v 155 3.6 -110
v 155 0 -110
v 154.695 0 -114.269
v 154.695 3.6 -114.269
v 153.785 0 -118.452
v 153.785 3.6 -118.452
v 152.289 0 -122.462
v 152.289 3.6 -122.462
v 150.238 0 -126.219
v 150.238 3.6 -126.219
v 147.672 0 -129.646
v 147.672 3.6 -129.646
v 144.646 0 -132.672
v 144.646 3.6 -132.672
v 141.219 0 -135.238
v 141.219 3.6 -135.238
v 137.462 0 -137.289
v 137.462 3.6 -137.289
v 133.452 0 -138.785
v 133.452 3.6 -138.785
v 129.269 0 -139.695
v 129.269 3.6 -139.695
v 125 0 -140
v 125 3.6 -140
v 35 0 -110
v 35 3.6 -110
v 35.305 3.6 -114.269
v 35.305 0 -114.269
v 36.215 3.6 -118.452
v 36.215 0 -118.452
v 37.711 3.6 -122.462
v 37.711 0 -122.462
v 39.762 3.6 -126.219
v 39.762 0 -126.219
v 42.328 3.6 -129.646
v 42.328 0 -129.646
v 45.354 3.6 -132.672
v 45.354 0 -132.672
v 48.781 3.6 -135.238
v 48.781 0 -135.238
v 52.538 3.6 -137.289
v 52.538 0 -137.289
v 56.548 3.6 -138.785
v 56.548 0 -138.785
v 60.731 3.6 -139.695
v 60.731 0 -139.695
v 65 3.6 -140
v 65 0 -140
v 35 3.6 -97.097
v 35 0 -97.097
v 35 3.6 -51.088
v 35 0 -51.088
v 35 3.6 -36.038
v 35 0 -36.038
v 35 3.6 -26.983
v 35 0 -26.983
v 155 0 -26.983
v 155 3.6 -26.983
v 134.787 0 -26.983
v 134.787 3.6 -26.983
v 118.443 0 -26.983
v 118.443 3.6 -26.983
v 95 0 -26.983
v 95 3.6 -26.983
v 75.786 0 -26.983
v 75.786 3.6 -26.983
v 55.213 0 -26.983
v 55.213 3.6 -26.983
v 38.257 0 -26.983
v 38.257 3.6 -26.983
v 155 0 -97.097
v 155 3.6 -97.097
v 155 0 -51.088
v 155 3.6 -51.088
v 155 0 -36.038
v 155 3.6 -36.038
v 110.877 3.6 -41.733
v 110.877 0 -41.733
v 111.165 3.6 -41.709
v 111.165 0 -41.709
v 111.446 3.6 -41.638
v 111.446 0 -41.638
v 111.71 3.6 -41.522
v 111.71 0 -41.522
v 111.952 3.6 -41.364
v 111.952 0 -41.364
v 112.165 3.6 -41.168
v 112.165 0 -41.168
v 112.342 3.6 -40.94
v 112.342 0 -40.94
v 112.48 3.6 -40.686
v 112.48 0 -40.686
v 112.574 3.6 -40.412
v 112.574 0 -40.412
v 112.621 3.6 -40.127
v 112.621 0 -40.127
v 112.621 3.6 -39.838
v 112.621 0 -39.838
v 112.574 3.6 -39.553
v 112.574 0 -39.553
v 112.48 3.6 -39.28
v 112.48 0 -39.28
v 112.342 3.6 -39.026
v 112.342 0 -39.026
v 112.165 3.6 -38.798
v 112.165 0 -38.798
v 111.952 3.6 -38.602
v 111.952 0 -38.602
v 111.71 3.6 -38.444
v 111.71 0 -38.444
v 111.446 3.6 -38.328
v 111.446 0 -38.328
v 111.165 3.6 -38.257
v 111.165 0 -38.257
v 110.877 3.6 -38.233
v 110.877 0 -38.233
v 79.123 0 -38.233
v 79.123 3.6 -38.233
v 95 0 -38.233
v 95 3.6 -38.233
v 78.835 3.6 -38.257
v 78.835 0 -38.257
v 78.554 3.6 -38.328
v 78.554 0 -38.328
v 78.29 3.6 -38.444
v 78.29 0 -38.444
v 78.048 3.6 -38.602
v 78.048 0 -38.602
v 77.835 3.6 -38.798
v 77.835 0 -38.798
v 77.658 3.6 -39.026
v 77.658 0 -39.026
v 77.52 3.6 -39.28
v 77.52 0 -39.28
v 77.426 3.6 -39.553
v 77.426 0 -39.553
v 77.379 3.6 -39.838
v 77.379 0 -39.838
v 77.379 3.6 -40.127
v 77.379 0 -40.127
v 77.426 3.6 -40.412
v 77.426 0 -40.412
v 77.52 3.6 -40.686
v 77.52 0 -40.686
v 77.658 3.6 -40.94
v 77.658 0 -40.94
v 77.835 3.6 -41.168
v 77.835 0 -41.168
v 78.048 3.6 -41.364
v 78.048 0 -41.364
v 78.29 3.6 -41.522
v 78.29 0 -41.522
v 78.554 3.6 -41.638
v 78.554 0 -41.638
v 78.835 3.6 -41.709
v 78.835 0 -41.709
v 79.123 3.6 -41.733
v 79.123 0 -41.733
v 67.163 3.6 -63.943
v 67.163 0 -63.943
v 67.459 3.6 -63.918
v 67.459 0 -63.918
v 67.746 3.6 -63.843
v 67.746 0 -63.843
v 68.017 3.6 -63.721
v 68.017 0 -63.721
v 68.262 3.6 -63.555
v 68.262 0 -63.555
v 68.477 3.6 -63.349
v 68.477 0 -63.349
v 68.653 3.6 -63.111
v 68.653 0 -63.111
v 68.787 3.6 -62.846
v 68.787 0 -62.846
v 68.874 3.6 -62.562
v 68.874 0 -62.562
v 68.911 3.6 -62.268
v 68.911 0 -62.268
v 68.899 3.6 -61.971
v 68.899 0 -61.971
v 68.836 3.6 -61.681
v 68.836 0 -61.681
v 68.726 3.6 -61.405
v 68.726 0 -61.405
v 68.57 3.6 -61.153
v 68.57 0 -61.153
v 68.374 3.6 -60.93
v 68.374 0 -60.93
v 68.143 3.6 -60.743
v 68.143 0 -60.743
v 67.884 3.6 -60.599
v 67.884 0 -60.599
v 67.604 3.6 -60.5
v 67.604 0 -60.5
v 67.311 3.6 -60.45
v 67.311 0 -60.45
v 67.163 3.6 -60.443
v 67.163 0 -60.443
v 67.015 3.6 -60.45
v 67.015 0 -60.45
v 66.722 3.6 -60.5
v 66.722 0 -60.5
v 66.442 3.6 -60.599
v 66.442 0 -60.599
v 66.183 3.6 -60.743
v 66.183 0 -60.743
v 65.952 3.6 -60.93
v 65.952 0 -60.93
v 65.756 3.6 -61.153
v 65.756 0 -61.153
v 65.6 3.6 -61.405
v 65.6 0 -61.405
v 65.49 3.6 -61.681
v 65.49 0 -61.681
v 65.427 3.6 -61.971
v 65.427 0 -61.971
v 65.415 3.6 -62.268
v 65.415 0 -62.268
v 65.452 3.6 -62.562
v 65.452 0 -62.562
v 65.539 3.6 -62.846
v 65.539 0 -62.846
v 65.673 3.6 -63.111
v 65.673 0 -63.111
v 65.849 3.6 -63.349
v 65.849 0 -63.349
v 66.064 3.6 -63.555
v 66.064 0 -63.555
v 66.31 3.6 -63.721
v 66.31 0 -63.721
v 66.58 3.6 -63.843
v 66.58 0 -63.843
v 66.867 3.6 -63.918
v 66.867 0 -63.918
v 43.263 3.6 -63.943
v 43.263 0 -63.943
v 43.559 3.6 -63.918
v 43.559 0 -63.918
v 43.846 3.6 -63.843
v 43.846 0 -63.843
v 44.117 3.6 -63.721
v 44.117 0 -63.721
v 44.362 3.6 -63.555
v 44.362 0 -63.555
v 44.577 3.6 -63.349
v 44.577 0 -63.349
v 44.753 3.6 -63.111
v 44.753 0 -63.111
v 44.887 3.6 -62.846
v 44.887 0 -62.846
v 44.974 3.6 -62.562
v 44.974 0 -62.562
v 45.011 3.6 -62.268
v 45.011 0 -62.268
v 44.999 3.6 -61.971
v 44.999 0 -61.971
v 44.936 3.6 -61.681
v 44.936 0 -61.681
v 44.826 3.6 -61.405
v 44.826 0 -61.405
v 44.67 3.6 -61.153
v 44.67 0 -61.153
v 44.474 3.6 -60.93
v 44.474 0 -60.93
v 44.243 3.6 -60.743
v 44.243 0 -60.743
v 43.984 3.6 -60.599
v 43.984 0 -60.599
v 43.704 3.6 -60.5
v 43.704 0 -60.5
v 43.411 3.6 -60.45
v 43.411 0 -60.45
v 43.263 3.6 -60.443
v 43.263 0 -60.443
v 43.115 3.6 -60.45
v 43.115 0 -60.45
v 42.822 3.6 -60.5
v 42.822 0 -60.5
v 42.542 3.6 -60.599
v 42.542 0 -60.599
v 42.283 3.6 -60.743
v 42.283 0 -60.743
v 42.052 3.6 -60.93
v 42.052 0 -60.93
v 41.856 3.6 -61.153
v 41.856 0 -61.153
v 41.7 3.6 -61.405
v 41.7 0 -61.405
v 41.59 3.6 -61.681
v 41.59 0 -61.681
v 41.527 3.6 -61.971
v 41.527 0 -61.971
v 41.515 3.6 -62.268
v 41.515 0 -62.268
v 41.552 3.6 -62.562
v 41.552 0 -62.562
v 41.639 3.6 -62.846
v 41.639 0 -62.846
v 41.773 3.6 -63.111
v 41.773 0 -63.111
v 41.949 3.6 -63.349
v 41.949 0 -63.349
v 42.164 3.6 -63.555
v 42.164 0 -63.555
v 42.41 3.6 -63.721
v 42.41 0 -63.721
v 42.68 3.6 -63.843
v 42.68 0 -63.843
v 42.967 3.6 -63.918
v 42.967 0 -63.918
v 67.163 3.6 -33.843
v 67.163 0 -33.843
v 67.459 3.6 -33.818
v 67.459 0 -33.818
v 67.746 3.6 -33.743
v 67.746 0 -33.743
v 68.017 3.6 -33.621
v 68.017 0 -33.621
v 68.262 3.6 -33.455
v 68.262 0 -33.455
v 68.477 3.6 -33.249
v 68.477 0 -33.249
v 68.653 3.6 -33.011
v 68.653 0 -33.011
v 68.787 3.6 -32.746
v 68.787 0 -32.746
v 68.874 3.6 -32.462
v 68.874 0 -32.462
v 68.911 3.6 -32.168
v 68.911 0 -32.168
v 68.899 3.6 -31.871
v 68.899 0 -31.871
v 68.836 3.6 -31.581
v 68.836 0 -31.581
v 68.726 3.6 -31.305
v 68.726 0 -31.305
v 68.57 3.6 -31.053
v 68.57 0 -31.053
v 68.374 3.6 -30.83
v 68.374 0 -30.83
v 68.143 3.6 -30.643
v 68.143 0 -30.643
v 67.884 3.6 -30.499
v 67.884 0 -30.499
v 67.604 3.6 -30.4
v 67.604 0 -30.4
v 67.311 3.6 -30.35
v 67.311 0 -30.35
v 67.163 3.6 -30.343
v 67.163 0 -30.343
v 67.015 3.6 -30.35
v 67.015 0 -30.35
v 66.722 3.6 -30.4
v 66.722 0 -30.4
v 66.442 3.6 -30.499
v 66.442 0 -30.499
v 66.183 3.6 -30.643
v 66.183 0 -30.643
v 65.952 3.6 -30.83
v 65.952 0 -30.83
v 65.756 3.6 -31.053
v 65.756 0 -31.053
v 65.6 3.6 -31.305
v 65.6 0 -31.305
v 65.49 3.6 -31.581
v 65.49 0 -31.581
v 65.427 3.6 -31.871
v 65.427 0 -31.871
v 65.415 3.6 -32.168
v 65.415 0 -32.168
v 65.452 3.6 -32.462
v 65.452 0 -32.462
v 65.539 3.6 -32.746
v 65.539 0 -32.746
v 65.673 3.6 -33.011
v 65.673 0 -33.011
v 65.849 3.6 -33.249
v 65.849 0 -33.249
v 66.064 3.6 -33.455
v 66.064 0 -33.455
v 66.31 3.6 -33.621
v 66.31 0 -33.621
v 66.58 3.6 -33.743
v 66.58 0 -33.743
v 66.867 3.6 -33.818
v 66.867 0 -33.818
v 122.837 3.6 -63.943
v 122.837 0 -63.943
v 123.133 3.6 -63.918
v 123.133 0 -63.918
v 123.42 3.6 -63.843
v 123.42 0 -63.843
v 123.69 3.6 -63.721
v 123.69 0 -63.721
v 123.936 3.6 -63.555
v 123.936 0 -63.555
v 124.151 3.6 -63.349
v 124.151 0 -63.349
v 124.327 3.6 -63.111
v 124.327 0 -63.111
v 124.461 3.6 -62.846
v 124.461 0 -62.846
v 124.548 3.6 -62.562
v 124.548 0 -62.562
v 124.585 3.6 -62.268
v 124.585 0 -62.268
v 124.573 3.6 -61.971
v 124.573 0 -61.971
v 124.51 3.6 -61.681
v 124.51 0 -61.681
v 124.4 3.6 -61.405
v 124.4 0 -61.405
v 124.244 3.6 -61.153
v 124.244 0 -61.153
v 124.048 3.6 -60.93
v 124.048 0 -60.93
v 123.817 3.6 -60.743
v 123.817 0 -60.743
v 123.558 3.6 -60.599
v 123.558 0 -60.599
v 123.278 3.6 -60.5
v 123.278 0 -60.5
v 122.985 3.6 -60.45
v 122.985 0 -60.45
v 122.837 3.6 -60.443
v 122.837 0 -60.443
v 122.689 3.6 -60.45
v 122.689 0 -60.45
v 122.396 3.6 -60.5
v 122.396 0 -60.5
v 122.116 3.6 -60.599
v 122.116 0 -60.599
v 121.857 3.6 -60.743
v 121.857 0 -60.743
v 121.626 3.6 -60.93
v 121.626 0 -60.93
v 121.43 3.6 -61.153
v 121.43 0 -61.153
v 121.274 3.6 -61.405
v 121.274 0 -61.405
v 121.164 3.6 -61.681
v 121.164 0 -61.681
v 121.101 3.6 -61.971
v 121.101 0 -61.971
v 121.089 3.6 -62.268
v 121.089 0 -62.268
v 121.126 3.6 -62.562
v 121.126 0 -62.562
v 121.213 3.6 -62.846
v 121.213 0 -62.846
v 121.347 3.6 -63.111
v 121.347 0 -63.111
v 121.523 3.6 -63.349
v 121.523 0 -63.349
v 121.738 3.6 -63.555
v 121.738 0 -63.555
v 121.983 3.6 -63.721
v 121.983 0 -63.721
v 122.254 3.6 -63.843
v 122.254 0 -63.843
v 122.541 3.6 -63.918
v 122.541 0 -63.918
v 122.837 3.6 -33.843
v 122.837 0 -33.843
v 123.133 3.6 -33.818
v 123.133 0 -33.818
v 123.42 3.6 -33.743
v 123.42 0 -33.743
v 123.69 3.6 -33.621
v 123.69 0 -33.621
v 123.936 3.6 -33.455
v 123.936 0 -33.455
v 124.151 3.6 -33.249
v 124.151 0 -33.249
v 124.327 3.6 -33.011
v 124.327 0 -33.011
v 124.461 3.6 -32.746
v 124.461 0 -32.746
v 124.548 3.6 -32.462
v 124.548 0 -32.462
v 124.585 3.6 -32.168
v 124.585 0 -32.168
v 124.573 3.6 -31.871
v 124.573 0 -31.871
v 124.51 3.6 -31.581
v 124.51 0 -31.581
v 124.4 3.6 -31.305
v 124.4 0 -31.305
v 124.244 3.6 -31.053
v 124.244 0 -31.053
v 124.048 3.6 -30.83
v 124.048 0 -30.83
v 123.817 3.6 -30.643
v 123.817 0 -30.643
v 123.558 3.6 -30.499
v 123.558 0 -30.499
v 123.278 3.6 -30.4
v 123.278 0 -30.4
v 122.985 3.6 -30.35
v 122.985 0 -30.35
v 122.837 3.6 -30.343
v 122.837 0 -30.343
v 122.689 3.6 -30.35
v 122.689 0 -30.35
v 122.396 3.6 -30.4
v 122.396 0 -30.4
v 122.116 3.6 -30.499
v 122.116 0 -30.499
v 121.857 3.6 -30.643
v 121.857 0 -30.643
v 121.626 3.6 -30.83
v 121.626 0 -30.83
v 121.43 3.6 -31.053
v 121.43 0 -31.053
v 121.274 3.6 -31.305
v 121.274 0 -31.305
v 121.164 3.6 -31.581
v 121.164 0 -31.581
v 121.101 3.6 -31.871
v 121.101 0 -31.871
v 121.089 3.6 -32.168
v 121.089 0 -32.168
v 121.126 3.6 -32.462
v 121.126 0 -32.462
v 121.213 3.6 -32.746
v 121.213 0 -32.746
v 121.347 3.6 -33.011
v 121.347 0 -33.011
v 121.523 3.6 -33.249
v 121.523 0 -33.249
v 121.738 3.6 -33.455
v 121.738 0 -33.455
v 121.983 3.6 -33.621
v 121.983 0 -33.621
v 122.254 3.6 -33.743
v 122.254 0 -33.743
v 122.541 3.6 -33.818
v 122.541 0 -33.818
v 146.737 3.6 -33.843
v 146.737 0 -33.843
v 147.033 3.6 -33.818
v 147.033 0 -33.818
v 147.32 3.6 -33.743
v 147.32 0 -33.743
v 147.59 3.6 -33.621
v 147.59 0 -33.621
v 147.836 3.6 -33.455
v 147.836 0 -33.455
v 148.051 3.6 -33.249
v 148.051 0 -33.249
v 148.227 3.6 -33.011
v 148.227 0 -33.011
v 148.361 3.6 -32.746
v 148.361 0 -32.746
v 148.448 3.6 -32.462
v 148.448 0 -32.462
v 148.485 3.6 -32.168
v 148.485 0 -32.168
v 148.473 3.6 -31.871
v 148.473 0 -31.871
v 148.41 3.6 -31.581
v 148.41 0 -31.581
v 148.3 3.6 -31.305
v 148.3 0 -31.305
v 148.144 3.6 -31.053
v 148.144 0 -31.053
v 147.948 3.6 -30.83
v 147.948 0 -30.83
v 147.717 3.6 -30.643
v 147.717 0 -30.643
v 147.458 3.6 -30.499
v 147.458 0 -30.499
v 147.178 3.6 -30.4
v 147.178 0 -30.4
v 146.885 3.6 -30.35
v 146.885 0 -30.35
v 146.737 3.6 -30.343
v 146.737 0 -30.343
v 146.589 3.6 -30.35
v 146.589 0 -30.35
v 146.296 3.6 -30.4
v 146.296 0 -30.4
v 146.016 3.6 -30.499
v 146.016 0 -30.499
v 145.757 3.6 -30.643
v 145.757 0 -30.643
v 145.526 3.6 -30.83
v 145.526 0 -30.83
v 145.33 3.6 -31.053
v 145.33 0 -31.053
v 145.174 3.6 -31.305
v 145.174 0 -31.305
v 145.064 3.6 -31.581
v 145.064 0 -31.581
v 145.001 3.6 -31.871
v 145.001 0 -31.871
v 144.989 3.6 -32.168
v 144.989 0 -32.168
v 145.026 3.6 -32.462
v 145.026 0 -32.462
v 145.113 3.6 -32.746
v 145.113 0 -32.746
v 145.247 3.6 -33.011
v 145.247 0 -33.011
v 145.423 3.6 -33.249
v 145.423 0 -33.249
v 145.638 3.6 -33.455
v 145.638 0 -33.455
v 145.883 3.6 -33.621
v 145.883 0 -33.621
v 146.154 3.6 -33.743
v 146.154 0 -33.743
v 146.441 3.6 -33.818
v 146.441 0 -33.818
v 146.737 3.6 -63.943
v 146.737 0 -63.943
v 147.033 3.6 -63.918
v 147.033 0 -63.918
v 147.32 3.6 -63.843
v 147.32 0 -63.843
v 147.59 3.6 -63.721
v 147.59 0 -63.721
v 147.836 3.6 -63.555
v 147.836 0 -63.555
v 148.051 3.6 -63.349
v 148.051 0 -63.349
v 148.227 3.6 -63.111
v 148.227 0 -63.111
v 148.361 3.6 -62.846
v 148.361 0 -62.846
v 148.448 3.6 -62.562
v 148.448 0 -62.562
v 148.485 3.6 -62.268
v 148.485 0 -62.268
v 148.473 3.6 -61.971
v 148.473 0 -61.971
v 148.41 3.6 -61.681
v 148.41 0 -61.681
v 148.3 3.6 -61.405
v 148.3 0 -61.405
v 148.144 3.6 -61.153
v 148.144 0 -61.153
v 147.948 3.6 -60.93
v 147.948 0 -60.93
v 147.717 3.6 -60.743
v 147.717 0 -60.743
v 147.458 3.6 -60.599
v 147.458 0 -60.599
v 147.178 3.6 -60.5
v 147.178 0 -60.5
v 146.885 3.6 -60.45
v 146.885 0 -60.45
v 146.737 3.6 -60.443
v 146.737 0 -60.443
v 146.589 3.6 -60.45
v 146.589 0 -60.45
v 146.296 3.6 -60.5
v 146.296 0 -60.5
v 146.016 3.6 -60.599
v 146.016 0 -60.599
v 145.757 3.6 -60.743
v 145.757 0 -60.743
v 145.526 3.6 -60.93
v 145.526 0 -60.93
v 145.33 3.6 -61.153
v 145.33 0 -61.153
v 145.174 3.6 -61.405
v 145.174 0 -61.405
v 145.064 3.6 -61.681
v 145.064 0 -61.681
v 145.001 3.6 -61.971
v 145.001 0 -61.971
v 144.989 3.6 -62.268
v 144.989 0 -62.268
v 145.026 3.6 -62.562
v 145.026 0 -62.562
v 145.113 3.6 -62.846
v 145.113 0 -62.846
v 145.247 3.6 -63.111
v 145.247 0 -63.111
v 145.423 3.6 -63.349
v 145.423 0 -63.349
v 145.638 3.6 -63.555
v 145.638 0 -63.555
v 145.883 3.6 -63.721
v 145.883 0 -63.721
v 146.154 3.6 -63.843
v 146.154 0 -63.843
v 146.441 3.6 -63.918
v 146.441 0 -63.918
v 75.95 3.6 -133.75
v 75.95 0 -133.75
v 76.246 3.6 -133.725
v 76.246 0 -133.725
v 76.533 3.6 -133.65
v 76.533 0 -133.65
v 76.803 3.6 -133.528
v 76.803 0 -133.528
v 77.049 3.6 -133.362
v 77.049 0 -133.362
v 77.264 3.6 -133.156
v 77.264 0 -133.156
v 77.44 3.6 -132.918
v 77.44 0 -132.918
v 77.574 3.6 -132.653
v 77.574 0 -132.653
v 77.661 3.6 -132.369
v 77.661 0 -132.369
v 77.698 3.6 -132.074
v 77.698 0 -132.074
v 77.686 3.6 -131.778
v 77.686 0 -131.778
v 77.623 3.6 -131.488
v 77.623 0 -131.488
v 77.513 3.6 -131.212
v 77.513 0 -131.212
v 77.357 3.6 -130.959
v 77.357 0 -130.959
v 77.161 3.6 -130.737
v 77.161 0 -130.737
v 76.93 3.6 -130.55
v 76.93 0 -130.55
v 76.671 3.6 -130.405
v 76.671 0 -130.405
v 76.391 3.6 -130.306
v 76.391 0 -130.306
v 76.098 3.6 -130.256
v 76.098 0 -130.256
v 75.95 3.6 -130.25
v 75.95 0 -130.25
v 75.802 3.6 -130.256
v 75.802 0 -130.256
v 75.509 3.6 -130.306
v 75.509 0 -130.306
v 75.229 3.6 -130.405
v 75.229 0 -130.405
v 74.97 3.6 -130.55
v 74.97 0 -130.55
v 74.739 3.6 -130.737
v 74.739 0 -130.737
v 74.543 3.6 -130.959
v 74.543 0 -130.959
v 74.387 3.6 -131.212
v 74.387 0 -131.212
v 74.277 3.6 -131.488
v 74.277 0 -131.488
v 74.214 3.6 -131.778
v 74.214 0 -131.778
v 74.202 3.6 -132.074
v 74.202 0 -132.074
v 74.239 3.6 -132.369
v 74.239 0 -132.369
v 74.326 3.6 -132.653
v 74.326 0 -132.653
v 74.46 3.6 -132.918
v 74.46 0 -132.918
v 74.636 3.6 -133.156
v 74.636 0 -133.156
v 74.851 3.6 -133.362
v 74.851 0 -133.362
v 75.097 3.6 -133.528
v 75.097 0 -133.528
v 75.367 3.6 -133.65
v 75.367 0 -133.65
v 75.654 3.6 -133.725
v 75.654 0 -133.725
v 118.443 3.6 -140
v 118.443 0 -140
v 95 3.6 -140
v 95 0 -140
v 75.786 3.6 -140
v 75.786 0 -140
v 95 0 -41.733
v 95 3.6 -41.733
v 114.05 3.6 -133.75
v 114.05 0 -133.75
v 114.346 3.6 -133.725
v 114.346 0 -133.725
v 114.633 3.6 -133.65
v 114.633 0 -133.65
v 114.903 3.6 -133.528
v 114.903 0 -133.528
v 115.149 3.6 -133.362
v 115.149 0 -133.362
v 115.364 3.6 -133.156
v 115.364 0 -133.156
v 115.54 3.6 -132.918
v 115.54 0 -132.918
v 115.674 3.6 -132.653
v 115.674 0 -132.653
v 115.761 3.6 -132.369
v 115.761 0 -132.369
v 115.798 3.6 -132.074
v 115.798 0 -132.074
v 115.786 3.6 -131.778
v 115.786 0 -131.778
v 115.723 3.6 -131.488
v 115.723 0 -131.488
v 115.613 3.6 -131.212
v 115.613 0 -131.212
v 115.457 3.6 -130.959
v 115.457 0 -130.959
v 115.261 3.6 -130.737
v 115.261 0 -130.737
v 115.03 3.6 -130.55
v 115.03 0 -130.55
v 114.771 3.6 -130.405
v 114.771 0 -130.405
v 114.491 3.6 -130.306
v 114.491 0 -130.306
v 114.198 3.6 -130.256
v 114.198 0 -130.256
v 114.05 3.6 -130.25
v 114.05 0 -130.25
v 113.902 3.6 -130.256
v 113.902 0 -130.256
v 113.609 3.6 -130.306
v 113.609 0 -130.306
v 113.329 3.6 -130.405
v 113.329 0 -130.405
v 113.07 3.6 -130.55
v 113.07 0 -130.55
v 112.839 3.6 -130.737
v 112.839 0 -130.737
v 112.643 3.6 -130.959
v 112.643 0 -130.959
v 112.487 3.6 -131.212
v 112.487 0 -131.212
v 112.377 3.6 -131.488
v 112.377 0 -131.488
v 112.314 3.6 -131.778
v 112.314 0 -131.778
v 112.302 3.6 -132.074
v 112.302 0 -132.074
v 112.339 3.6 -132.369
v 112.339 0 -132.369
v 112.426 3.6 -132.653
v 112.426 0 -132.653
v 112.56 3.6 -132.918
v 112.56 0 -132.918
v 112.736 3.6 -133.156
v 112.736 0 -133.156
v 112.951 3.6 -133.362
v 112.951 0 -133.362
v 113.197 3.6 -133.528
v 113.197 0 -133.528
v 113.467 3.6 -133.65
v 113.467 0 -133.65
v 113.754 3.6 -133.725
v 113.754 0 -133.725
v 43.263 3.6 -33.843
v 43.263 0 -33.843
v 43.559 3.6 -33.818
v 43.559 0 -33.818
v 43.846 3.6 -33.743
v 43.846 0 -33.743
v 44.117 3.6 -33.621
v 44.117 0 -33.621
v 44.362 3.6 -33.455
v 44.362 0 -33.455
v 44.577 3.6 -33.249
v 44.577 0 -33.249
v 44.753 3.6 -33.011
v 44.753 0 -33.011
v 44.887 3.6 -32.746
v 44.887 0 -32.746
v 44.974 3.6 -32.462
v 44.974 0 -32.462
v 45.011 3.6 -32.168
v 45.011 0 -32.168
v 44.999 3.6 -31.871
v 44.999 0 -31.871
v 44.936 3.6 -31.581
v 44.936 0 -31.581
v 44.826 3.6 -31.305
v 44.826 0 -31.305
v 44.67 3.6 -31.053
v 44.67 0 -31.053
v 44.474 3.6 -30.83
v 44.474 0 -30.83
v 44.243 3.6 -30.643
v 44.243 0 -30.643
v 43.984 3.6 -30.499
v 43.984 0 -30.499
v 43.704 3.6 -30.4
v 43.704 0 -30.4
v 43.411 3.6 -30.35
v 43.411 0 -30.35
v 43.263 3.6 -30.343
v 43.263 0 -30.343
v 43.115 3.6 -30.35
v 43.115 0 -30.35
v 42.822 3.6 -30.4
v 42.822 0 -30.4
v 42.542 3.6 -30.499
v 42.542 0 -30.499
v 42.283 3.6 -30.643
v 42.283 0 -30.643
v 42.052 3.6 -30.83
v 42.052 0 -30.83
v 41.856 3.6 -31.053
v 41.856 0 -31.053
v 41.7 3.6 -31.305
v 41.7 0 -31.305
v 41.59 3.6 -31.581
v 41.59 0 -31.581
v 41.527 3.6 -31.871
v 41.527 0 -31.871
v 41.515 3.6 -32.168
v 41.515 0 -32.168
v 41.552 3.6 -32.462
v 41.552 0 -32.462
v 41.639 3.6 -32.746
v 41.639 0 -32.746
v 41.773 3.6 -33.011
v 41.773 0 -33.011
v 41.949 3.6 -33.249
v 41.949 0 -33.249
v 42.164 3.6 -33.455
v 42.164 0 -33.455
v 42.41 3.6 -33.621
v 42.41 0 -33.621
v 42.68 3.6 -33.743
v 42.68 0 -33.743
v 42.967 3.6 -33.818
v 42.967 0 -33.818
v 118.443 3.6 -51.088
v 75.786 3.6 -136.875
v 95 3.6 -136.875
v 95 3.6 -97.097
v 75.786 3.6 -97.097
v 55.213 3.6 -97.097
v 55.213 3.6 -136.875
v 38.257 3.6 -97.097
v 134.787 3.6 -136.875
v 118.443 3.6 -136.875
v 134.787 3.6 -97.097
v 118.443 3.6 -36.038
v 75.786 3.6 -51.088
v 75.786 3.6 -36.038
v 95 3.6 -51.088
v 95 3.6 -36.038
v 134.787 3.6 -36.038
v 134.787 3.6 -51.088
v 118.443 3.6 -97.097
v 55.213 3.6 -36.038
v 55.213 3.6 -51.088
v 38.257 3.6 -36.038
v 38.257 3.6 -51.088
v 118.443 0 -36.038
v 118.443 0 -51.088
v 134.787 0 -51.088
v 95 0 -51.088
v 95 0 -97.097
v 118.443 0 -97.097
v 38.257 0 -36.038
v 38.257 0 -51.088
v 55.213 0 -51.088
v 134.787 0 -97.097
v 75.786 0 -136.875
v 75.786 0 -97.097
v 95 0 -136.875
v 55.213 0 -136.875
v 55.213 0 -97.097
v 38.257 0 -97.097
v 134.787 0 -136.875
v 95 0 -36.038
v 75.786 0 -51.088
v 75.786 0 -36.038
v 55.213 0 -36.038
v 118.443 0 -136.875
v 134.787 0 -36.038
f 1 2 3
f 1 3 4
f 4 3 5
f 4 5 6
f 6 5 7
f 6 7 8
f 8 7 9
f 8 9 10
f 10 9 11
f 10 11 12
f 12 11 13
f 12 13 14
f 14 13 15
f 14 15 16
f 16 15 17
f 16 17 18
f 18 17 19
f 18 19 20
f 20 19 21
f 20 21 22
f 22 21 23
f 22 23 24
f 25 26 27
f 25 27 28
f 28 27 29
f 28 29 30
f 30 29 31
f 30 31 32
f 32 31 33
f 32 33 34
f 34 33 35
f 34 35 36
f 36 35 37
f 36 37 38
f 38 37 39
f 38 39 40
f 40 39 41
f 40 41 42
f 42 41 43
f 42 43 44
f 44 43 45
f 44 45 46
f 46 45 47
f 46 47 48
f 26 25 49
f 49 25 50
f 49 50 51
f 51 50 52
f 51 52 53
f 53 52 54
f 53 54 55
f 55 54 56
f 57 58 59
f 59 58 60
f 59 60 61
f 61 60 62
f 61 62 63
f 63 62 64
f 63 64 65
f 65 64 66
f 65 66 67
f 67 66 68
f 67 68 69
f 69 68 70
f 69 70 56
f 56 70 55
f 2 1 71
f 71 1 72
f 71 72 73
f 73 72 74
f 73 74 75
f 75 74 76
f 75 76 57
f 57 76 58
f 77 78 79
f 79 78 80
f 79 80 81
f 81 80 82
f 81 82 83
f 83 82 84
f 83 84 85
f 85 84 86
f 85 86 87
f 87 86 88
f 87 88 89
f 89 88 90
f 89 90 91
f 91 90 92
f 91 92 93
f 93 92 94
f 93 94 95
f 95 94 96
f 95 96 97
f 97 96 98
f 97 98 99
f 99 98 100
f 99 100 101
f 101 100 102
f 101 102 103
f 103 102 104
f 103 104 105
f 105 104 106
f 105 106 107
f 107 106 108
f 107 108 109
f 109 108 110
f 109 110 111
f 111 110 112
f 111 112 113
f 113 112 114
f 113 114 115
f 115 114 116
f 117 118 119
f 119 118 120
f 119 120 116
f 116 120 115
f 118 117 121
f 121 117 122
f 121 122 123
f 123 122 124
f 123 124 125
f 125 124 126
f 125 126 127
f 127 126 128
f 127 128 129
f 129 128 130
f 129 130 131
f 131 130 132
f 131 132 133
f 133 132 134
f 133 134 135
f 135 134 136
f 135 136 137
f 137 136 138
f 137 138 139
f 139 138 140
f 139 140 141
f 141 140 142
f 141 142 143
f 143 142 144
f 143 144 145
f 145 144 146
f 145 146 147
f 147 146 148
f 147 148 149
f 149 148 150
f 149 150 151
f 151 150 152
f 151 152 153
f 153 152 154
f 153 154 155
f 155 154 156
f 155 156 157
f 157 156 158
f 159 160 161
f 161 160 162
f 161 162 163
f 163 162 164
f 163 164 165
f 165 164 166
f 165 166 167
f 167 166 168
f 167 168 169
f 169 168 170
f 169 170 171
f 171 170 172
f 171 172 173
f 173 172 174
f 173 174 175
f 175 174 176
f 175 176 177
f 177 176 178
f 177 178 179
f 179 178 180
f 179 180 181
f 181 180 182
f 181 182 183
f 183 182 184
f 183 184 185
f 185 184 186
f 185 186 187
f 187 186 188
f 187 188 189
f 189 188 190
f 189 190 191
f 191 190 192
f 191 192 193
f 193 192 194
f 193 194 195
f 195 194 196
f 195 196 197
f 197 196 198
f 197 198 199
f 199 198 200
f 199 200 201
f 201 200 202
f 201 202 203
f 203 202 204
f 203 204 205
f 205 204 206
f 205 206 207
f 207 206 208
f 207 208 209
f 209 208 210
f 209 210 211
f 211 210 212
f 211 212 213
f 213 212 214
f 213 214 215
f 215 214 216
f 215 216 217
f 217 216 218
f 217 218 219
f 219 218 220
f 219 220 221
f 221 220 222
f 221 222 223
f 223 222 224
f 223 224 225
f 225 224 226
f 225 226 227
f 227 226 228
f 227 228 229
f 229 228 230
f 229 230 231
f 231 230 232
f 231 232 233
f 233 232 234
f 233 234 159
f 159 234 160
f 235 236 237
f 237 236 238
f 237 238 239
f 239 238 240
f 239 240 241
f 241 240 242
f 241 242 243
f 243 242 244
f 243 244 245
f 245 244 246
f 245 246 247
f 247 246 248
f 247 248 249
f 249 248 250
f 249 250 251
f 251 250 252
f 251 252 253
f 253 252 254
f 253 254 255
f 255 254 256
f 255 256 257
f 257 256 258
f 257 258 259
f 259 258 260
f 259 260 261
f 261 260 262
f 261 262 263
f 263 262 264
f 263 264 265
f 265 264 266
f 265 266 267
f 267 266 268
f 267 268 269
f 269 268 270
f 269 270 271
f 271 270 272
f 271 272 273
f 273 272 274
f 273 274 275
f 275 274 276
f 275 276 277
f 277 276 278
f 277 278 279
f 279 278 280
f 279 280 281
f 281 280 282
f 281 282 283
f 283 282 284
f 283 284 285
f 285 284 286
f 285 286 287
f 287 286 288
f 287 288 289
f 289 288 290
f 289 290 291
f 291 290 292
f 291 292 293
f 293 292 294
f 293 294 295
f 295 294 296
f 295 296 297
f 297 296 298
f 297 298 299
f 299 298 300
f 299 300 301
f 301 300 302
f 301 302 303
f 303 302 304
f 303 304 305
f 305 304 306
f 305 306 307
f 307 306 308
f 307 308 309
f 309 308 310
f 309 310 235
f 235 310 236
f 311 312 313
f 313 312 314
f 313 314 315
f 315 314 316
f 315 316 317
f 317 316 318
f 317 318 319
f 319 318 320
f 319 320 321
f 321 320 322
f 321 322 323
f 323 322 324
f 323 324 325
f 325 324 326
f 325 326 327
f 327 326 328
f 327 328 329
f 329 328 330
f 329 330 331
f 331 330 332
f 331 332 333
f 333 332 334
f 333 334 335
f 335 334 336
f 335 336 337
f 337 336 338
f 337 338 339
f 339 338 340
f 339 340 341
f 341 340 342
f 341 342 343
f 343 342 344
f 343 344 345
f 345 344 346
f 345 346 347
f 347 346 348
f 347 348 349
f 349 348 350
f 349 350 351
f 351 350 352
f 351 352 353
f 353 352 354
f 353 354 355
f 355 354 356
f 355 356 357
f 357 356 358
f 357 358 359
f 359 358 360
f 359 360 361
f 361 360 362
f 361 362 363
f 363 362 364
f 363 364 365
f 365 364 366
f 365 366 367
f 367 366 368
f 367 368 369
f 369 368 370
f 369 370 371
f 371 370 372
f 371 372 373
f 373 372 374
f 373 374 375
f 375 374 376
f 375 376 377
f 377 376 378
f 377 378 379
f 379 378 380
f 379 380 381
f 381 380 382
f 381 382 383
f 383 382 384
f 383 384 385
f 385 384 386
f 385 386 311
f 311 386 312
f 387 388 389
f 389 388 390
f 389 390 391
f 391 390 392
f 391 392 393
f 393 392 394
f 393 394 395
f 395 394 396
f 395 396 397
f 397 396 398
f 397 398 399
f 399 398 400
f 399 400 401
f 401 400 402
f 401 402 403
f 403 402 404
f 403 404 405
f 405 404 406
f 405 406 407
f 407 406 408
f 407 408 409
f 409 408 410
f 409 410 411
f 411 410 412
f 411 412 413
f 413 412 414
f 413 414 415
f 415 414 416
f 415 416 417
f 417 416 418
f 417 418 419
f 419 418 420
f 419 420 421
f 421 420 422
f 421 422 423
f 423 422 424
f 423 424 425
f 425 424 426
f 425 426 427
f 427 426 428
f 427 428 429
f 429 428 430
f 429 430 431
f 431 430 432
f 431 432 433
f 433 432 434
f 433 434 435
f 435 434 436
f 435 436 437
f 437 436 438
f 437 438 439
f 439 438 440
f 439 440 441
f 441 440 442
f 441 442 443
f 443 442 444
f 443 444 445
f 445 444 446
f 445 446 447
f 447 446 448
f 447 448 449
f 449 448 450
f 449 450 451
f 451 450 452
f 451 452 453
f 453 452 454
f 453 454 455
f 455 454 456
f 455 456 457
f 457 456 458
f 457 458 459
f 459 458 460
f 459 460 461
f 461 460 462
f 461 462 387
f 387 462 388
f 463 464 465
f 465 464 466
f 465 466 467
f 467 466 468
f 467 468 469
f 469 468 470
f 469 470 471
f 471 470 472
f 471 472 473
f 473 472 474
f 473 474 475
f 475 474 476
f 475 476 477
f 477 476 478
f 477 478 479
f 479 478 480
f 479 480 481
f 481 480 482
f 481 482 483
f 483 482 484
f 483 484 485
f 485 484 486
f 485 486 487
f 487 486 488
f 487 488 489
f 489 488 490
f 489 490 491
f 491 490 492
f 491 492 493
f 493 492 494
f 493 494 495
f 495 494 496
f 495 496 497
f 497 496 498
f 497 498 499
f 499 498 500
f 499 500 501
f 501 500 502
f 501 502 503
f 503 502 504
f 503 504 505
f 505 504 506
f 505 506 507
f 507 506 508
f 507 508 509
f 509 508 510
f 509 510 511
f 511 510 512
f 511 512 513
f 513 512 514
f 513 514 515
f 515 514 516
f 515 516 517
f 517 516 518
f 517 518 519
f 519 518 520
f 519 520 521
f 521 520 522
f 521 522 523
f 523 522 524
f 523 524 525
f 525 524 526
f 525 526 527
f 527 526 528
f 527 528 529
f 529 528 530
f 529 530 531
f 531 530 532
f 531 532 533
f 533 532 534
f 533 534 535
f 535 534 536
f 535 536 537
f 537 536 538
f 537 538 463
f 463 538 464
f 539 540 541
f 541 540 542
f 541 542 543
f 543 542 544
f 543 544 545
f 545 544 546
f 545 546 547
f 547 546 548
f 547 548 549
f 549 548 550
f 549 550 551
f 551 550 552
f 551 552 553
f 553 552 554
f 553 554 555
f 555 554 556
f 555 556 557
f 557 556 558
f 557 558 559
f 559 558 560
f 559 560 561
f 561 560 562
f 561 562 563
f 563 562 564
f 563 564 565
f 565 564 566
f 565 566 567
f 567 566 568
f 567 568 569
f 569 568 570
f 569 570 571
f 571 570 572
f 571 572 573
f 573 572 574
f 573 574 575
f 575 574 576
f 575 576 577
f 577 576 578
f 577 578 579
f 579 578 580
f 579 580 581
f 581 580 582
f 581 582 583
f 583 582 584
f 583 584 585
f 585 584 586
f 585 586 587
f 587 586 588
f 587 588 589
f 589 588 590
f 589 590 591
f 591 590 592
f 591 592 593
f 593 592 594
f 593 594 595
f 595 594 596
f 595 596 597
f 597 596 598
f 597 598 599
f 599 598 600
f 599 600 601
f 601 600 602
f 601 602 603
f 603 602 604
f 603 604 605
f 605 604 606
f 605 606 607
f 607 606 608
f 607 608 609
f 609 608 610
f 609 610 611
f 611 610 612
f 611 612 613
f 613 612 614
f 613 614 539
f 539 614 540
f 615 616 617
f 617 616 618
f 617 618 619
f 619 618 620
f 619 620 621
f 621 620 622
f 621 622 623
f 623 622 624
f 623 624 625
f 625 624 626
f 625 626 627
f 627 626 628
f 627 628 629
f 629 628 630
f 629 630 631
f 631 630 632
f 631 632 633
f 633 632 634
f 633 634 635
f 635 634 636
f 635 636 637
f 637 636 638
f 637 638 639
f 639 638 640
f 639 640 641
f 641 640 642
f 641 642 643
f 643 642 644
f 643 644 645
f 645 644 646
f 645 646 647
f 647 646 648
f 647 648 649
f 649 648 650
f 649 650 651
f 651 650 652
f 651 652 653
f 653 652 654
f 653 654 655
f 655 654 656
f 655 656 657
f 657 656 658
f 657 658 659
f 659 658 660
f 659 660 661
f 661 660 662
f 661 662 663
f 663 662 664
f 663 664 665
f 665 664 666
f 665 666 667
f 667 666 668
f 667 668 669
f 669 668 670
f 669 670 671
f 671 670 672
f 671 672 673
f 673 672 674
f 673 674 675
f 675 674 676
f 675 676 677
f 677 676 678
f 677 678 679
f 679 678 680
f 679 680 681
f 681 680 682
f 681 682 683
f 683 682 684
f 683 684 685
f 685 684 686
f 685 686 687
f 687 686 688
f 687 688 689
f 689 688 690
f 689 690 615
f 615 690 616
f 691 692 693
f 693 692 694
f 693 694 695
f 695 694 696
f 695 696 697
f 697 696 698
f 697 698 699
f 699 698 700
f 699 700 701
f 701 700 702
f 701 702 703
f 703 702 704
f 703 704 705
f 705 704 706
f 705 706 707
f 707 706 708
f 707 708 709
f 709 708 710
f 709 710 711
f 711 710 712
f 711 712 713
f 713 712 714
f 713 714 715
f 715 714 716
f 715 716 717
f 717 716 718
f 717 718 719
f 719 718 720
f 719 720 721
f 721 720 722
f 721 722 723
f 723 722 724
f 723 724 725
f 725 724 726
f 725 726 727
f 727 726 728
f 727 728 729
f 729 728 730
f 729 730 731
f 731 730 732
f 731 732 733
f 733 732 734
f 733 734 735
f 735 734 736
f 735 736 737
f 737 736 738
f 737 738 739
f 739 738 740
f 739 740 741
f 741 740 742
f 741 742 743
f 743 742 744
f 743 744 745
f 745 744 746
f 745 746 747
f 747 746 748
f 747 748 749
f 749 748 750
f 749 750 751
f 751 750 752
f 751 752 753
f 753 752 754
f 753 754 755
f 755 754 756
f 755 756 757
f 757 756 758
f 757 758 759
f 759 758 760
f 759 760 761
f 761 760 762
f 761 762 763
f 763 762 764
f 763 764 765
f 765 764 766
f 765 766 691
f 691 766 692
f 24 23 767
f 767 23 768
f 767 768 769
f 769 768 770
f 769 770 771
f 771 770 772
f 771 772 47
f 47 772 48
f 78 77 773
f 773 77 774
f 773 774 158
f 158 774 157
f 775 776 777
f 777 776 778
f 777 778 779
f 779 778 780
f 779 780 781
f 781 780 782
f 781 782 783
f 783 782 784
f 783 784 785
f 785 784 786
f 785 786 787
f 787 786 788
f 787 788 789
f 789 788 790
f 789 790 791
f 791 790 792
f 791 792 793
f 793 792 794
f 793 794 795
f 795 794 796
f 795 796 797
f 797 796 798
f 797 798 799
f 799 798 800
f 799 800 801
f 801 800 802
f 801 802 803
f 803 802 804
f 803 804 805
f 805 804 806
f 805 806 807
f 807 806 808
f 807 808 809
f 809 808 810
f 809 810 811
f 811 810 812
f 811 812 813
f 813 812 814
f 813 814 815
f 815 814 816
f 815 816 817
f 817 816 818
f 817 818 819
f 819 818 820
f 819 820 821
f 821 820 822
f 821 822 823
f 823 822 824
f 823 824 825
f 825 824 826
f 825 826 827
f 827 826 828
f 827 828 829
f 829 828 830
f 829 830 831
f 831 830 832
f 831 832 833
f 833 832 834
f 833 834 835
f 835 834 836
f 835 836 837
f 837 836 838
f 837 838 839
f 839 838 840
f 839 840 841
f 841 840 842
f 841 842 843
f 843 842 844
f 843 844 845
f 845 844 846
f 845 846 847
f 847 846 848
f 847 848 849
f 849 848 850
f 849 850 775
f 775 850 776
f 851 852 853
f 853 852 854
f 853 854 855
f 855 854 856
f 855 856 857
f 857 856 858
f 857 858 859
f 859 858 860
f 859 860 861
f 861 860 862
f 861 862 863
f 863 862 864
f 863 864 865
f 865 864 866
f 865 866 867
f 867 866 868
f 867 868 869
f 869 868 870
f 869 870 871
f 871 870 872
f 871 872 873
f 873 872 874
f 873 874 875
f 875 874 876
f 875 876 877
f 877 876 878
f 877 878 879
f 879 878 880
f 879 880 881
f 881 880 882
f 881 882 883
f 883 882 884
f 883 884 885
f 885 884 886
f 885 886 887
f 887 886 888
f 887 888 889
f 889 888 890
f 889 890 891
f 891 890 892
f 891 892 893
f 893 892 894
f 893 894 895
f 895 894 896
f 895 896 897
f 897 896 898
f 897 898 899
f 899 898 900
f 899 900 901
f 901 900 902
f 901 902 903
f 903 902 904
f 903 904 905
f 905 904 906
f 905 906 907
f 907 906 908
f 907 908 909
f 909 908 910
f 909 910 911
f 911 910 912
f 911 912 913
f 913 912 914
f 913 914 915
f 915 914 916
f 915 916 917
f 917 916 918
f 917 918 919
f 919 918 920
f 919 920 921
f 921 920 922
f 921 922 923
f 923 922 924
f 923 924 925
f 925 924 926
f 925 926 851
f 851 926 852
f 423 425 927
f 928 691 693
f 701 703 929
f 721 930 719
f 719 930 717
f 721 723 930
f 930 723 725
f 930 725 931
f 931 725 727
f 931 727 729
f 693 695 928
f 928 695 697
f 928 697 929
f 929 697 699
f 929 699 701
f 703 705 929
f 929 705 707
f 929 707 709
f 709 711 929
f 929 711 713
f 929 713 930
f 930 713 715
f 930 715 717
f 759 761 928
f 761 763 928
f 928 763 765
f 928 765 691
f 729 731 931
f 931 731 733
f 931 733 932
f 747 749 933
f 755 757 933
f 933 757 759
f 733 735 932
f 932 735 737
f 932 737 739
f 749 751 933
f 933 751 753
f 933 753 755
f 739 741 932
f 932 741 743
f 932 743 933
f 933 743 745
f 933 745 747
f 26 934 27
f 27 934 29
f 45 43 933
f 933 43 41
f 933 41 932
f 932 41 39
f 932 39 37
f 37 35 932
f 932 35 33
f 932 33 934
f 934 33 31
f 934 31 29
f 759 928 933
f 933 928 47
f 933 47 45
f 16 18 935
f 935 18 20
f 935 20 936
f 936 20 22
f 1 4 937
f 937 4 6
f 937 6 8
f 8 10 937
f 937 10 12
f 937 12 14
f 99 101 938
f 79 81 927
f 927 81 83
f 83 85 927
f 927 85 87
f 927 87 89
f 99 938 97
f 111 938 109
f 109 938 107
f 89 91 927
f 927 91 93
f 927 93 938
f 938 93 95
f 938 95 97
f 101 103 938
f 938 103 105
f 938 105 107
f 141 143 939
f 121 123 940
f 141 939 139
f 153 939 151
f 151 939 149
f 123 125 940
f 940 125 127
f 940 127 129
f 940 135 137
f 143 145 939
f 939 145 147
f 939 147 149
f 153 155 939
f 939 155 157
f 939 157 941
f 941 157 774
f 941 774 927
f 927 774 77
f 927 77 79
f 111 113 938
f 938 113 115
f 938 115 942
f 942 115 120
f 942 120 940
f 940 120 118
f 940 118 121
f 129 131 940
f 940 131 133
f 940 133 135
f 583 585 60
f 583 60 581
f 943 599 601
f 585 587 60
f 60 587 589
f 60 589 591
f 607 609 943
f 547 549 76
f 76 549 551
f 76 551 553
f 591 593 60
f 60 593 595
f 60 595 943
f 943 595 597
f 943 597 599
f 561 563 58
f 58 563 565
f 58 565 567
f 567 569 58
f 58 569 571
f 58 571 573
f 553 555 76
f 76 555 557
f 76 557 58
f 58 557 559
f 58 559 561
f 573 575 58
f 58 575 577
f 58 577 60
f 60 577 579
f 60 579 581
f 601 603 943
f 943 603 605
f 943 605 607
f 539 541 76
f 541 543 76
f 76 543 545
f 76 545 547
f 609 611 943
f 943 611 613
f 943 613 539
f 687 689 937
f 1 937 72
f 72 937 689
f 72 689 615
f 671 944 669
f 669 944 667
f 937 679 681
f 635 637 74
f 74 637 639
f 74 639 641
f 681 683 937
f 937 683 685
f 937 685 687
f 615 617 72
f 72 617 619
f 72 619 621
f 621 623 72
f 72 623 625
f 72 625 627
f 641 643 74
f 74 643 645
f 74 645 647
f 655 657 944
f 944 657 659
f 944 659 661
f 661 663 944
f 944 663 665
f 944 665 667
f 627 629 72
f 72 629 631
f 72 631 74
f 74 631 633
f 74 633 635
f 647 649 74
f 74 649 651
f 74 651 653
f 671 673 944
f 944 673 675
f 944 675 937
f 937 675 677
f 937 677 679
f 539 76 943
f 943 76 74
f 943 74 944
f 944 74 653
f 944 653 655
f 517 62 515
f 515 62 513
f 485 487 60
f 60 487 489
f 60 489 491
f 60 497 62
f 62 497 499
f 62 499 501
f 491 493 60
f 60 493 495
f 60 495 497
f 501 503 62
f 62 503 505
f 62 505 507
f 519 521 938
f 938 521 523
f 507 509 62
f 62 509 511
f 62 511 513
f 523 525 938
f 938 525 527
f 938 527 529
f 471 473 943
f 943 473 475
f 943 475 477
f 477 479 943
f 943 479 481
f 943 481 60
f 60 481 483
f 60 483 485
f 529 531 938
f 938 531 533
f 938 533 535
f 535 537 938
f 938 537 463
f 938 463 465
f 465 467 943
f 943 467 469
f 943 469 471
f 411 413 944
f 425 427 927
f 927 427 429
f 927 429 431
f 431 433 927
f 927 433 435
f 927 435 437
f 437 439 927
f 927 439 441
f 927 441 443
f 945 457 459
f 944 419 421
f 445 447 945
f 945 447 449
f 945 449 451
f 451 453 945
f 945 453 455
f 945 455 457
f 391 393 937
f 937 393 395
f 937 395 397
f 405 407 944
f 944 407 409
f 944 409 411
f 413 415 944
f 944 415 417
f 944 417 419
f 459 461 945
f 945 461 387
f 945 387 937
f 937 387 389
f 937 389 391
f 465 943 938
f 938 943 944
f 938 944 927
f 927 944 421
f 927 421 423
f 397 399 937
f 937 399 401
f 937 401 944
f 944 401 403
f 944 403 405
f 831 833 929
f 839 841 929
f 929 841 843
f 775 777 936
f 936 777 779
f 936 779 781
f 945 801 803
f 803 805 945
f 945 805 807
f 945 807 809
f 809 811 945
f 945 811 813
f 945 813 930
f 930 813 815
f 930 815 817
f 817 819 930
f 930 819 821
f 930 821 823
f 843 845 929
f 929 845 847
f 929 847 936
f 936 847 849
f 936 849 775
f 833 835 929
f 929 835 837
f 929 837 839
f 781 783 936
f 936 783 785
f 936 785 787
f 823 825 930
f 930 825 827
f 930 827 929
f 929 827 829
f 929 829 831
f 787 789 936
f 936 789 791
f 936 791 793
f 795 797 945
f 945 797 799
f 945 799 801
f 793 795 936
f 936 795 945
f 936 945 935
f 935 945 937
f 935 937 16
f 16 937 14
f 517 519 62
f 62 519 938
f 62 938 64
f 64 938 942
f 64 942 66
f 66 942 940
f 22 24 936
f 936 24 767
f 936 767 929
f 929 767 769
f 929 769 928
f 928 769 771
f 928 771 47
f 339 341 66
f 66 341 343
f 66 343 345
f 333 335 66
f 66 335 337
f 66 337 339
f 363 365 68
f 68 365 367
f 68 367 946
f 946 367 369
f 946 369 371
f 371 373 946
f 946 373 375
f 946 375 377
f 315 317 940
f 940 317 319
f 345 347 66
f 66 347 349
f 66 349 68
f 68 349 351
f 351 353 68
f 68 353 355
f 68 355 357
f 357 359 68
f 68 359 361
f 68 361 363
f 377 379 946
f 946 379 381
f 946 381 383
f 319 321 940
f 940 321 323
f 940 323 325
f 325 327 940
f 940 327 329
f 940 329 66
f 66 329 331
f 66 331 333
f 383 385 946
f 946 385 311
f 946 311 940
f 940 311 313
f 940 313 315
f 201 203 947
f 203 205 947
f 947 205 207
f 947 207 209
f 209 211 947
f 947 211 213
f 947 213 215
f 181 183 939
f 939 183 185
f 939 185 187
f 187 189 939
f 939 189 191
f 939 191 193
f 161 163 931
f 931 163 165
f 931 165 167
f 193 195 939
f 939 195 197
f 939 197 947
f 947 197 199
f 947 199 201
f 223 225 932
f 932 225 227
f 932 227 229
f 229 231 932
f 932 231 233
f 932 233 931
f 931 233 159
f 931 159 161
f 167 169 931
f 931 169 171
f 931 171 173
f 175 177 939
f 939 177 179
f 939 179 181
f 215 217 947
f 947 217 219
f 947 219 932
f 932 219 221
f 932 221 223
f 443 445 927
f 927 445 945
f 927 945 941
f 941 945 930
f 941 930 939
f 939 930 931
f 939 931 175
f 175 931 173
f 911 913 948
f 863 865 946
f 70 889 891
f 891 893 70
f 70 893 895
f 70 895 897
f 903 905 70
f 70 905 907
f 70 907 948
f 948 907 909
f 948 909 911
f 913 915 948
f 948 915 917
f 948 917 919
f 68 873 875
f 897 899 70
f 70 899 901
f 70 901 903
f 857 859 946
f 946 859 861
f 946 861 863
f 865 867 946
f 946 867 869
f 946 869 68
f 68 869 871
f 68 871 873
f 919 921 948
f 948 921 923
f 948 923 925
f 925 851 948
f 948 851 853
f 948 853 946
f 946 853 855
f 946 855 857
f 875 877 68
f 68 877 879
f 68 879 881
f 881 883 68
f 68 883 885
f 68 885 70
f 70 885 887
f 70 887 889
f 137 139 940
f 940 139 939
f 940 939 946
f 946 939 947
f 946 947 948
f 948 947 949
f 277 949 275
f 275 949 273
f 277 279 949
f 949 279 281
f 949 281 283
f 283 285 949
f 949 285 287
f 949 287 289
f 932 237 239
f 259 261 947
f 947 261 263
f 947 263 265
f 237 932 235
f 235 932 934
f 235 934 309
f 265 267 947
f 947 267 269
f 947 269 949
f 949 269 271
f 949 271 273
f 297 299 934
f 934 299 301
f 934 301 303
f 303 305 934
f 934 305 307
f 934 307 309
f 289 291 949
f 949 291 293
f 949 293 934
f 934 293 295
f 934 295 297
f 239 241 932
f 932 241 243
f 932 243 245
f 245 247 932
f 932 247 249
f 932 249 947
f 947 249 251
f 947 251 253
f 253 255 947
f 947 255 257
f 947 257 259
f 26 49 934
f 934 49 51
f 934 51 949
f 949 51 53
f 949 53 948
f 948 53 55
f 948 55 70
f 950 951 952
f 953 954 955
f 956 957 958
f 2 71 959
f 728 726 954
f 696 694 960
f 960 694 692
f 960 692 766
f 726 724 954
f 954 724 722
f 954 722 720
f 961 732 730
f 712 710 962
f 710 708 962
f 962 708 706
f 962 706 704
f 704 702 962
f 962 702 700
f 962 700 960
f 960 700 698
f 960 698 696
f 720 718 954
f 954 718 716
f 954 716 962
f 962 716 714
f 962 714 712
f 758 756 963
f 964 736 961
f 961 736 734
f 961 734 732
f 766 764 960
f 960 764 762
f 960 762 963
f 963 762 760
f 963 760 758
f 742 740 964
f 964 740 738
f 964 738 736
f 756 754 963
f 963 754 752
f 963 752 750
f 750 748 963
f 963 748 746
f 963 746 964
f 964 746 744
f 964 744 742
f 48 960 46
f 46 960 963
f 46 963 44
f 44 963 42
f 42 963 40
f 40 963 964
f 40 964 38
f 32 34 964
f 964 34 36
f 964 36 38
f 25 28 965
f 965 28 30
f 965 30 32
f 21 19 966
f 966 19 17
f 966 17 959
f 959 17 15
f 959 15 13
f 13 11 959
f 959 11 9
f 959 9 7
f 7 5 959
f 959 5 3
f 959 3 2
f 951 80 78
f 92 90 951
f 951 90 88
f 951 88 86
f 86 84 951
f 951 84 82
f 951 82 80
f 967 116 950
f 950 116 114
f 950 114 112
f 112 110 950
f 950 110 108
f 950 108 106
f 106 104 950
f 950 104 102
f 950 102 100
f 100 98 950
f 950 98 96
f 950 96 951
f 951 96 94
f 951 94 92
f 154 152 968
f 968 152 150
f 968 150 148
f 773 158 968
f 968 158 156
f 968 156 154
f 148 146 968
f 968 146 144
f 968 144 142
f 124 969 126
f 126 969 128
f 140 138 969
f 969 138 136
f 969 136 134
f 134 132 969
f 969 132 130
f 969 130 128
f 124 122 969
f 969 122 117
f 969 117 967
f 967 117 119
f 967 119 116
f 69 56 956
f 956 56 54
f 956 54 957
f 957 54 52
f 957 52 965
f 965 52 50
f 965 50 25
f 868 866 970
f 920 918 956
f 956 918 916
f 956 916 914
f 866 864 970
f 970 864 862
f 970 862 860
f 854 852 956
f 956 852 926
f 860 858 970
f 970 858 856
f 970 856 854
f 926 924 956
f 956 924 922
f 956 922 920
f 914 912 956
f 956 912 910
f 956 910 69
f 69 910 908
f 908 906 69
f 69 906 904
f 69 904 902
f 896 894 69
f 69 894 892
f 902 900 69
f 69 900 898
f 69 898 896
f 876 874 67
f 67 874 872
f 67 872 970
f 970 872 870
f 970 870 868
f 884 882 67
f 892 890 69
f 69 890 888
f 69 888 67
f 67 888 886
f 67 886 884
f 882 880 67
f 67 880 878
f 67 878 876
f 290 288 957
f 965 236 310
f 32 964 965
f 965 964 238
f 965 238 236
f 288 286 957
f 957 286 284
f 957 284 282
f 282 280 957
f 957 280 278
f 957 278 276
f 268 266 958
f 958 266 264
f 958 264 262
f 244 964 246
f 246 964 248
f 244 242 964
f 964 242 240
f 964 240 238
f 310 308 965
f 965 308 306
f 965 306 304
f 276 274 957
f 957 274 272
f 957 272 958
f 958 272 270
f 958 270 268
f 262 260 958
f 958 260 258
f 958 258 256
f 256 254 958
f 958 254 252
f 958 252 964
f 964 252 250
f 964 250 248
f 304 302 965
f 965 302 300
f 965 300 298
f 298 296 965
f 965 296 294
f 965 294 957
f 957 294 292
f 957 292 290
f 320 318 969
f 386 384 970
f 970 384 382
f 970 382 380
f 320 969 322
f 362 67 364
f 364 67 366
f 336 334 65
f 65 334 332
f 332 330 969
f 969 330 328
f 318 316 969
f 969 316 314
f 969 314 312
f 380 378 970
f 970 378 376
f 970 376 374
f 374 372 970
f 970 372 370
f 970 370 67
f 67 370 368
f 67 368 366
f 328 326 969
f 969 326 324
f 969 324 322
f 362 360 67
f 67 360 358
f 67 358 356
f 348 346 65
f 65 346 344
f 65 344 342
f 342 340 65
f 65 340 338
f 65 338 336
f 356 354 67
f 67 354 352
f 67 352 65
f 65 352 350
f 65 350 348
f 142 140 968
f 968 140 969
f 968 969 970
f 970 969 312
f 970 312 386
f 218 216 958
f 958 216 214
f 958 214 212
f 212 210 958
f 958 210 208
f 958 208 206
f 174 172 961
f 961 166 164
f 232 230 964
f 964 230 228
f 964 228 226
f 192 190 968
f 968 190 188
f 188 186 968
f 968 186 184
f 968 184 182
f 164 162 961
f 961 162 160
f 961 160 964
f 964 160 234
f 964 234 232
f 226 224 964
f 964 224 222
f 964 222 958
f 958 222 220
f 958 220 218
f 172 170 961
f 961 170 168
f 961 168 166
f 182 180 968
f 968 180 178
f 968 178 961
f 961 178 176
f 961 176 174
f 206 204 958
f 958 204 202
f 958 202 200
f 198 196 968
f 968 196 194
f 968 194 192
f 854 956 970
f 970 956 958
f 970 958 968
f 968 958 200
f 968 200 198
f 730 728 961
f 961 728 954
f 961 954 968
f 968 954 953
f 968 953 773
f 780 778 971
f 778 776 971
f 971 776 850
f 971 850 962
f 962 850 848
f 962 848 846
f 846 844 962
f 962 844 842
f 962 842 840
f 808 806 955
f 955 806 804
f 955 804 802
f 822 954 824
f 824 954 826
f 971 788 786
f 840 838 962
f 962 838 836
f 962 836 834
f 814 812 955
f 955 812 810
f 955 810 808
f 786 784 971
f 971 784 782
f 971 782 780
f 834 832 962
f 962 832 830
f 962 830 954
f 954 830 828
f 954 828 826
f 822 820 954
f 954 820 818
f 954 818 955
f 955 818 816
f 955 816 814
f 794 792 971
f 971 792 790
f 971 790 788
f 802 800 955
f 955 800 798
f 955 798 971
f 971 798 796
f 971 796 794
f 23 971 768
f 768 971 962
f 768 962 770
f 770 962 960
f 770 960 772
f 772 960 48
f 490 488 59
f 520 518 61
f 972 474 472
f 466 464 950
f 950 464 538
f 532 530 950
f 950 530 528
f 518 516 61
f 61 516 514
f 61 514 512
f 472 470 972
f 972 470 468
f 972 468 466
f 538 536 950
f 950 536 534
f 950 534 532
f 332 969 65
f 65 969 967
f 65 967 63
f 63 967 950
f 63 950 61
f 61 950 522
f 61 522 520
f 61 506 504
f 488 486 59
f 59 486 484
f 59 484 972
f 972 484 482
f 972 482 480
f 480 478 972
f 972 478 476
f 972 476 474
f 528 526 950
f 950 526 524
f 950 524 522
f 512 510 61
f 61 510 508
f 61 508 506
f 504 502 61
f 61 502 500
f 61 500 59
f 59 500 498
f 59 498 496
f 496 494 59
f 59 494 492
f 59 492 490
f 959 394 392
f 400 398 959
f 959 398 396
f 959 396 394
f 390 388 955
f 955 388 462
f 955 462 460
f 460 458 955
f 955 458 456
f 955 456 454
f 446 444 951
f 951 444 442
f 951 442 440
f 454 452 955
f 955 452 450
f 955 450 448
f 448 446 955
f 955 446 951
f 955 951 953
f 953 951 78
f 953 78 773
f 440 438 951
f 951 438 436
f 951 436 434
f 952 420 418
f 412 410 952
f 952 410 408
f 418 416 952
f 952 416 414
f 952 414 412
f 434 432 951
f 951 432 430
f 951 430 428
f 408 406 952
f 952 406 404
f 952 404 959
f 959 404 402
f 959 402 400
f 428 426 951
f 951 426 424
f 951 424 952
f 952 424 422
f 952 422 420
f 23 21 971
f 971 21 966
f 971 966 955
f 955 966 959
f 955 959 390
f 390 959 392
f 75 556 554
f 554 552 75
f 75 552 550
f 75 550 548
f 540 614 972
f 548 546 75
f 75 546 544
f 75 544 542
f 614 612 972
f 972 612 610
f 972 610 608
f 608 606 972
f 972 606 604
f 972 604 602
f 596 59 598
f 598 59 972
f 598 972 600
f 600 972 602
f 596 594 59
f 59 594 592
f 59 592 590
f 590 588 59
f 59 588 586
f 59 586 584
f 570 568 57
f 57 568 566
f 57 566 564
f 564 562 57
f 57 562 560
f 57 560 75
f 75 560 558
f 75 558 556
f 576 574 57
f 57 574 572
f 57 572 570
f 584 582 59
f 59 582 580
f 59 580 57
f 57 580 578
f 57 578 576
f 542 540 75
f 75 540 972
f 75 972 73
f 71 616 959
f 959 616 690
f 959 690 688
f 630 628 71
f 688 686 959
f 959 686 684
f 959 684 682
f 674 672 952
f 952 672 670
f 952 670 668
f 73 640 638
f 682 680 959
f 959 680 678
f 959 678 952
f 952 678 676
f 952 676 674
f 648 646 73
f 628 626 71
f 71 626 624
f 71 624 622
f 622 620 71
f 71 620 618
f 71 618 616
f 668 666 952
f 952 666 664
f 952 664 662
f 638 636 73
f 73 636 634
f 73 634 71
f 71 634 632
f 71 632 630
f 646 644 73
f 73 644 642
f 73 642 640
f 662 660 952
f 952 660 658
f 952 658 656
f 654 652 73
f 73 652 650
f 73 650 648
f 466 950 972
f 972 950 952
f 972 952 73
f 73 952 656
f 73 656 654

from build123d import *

# Parameters (mm, degrees)
SKETCH_6_W      = 120
SKETCH_6_H      = 113.017251625
SKETCH_6_R      = 1.75
EXTRUDE_2_DEPTH = 3.6
FILLET_1_R      = 30
FILLET_2_R      = 30


with BuildPart() as part:
    # 草图6 → 凸台-拉伸2 (new body)
    with BuildSketch(Plane(origin=(0, 0, 0), x_dir=(1, 0, 0), z_dir=(0, 1, 0))):
        with Locations((95, 83.491374187)):
            Rectangle(SKETCH_6_W, SKETCH_6_H)
        with Locations((43.263065037, 32.093294966)):
            Circle(SKETCH_6_R, mode=Mode.SUBTRACT)
        with Locations((67.163065037, 32.093294966)):
            Circle(SKETCH_6_R, mode=Mode.SUBTRACT)
        with BuildLine():
            ThreePointArc((79.1225441, 38.232748375), (77.3725441, 39.982748375), (79.1225441, 41.732748375))
            Line((79.1225441, 41.732748375), (110.8774559, 41.732748375))
            ThreePointArc((110.8774559, 41.732748375), (112.6274559, 39.982748375), (110.8774559, 38.232748375))
            Line((110.8774559, 38.232748375), (79.1225441, 38.232748375))
        make_face(mode=Mode.SUBTRACT)
        with Locations((43.263065037, 62.193294966)):
            Circle(SKETCH_6_R, mode=Mode.SUBTRACT)
        with Locations((67.163065037, 62.193294966)):
            Circle(SKETCH_6_R, mode=Mode.SUBTRACT)
        with Locations((75.95, 132)):
            Circle(SKETCH_6_R, mode=Mode.SUBTRACT)
        with Locations((114.05, 132)):
            Circle(SKETCH_6_R, mode=Mode.SUBTRACT)
        with Locations((122.836934963, 62.193294966)):
            Circle(SKETCH_6_R, mode=Mode.SUBTRACT)
        with Locations((122.836934963, 32.093294966)):
            Circle(SKETCH_6_R, mode=Mode.SUBTRACT)
        with Locations((146.736934963, 32.093294966)):
            Circle(SKETCH_6_R, mode=Mode.SUBTRACT)
        with Locations((146.736934963, 62.193294966)):
            Circle(SKETCH_6_R, mode=Mode.SUBTRACT)
    extrude(amount=EXTRUDE_2_DEPTH)

    # 圆角1
    fillet_1_edges = [part.edges().sort_by_distance(p)[0] for p in [
        (35, 1.8, -140),
    ]]
    fillet(fillet_1_edges, radius=FILLET_1_R)

    # 圆角2
    fillet_2_edges = [part.edges().sort_by_distance(p)[0] for p in [
        (155, 1.8, -140),
    ]]
    fillet(fillet_2_edges, radius=FILLET_2_R)


solid = part.part
